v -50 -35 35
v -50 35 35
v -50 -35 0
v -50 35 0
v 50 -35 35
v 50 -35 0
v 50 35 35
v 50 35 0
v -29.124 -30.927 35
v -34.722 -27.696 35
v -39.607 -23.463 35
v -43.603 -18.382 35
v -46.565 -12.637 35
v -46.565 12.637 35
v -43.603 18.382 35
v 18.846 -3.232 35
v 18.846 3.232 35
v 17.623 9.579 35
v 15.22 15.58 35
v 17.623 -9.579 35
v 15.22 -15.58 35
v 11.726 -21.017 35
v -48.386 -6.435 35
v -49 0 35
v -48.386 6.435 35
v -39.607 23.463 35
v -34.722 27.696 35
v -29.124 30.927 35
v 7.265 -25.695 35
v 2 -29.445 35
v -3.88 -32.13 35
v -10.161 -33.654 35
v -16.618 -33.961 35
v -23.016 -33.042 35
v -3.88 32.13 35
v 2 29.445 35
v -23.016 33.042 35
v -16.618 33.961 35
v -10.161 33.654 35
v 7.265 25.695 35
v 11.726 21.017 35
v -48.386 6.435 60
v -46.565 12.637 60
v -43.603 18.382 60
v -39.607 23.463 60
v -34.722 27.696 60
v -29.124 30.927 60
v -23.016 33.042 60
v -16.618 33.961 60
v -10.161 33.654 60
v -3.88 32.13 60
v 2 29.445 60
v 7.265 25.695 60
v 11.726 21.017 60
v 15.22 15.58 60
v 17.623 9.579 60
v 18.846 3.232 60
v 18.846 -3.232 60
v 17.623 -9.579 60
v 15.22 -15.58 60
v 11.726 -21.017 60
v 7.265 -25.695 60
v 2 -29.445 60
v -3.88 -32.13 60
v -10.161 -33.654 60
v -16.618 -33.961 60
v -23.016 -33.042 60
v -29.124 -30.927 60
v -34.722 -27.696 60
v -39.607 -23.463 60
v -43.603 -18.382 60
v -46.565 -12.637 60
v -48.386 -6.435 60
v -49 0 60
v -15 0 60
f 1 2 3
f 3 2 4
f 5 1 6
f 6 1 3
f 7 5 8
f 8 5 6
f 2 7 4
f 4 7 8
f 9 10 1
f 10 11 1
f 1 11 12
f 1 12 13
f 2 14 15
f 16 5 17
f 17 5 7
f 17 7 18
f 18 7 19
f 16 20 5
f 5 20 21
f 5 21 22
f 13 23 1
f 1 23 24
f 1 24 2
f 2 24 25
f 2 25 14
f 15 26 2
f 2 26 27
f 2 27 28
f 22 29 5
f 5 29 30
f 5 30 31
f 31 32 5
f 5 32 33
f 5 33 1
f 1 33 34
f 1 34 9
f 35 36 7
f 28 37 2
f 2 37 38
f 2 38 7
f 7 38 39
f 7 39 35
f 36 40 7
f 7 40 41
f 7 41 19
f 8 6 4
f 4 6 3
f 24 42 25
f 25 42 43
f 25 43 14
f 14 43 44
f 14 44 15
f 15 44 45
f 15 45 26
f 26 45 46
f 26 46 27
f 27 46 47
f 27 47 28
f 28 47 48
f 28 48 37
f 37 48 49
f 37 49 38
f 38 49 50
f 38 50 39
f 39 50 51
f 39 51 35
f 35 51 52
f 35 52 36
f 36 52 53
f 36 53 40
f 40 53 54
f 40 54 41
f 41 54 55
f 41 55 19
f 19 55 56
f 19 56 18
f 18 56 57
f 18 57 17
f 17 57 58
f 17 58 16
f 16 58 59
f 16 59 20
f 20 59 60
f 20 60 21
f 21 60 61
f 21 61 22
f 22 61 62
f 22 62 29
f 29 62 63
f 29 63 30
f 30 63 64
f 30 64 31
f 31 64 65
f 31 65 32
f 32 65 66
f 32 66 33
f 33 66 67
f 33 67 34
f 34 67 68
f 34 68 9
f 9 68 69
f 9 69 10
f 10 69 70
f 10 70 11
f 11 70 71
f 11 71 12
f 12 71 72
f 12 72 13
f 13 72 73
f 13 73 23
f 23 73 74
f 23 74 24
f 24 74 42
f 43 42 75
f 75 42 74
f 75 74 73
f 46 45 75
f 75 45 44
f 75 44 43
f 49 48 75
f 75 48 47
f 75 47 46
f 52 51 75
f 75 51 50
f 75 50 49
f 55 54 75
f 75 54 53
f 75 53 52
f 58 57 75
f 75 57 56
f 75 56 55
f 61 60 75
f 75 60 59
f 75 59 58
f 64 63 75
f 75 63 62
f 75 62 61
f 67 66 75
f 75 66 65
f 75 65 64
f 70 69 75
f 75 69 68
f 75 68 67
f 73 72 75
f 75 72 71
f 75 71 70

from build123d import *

# Parameters (mm, degrees)
SKETCH_1_W      = 100
SKETCH_1_H      = 70
EXTRUDE_1_DEPTH = 35
SKETCH_3_R      = 34
EXTRUDE_2_DEPTH = 60


with BuildPart() as part:
    # Эскиз1 → Бобышка-Вытянуть1 (new body)
    with BuildSketch(Plane.XY):
        Rectangle(SKETCH_1_W, SKETCH_1_H)
    extrude(amount=EXTRUDE_1_DEPTH)

    # Эскиз3 → Бобышка-Вытянуть2 (add)
    with BuildSketch(Plane(origin=(0, 0, 0), x_dir=(-1, 0, 0), z_dir=(0, 0, -1))):
        with Locations((15, 0)):
            Circle(SKETCH_3_R)
    extrude(amount=-EXTRUDE_2_DEPTH)


solid = part.part
